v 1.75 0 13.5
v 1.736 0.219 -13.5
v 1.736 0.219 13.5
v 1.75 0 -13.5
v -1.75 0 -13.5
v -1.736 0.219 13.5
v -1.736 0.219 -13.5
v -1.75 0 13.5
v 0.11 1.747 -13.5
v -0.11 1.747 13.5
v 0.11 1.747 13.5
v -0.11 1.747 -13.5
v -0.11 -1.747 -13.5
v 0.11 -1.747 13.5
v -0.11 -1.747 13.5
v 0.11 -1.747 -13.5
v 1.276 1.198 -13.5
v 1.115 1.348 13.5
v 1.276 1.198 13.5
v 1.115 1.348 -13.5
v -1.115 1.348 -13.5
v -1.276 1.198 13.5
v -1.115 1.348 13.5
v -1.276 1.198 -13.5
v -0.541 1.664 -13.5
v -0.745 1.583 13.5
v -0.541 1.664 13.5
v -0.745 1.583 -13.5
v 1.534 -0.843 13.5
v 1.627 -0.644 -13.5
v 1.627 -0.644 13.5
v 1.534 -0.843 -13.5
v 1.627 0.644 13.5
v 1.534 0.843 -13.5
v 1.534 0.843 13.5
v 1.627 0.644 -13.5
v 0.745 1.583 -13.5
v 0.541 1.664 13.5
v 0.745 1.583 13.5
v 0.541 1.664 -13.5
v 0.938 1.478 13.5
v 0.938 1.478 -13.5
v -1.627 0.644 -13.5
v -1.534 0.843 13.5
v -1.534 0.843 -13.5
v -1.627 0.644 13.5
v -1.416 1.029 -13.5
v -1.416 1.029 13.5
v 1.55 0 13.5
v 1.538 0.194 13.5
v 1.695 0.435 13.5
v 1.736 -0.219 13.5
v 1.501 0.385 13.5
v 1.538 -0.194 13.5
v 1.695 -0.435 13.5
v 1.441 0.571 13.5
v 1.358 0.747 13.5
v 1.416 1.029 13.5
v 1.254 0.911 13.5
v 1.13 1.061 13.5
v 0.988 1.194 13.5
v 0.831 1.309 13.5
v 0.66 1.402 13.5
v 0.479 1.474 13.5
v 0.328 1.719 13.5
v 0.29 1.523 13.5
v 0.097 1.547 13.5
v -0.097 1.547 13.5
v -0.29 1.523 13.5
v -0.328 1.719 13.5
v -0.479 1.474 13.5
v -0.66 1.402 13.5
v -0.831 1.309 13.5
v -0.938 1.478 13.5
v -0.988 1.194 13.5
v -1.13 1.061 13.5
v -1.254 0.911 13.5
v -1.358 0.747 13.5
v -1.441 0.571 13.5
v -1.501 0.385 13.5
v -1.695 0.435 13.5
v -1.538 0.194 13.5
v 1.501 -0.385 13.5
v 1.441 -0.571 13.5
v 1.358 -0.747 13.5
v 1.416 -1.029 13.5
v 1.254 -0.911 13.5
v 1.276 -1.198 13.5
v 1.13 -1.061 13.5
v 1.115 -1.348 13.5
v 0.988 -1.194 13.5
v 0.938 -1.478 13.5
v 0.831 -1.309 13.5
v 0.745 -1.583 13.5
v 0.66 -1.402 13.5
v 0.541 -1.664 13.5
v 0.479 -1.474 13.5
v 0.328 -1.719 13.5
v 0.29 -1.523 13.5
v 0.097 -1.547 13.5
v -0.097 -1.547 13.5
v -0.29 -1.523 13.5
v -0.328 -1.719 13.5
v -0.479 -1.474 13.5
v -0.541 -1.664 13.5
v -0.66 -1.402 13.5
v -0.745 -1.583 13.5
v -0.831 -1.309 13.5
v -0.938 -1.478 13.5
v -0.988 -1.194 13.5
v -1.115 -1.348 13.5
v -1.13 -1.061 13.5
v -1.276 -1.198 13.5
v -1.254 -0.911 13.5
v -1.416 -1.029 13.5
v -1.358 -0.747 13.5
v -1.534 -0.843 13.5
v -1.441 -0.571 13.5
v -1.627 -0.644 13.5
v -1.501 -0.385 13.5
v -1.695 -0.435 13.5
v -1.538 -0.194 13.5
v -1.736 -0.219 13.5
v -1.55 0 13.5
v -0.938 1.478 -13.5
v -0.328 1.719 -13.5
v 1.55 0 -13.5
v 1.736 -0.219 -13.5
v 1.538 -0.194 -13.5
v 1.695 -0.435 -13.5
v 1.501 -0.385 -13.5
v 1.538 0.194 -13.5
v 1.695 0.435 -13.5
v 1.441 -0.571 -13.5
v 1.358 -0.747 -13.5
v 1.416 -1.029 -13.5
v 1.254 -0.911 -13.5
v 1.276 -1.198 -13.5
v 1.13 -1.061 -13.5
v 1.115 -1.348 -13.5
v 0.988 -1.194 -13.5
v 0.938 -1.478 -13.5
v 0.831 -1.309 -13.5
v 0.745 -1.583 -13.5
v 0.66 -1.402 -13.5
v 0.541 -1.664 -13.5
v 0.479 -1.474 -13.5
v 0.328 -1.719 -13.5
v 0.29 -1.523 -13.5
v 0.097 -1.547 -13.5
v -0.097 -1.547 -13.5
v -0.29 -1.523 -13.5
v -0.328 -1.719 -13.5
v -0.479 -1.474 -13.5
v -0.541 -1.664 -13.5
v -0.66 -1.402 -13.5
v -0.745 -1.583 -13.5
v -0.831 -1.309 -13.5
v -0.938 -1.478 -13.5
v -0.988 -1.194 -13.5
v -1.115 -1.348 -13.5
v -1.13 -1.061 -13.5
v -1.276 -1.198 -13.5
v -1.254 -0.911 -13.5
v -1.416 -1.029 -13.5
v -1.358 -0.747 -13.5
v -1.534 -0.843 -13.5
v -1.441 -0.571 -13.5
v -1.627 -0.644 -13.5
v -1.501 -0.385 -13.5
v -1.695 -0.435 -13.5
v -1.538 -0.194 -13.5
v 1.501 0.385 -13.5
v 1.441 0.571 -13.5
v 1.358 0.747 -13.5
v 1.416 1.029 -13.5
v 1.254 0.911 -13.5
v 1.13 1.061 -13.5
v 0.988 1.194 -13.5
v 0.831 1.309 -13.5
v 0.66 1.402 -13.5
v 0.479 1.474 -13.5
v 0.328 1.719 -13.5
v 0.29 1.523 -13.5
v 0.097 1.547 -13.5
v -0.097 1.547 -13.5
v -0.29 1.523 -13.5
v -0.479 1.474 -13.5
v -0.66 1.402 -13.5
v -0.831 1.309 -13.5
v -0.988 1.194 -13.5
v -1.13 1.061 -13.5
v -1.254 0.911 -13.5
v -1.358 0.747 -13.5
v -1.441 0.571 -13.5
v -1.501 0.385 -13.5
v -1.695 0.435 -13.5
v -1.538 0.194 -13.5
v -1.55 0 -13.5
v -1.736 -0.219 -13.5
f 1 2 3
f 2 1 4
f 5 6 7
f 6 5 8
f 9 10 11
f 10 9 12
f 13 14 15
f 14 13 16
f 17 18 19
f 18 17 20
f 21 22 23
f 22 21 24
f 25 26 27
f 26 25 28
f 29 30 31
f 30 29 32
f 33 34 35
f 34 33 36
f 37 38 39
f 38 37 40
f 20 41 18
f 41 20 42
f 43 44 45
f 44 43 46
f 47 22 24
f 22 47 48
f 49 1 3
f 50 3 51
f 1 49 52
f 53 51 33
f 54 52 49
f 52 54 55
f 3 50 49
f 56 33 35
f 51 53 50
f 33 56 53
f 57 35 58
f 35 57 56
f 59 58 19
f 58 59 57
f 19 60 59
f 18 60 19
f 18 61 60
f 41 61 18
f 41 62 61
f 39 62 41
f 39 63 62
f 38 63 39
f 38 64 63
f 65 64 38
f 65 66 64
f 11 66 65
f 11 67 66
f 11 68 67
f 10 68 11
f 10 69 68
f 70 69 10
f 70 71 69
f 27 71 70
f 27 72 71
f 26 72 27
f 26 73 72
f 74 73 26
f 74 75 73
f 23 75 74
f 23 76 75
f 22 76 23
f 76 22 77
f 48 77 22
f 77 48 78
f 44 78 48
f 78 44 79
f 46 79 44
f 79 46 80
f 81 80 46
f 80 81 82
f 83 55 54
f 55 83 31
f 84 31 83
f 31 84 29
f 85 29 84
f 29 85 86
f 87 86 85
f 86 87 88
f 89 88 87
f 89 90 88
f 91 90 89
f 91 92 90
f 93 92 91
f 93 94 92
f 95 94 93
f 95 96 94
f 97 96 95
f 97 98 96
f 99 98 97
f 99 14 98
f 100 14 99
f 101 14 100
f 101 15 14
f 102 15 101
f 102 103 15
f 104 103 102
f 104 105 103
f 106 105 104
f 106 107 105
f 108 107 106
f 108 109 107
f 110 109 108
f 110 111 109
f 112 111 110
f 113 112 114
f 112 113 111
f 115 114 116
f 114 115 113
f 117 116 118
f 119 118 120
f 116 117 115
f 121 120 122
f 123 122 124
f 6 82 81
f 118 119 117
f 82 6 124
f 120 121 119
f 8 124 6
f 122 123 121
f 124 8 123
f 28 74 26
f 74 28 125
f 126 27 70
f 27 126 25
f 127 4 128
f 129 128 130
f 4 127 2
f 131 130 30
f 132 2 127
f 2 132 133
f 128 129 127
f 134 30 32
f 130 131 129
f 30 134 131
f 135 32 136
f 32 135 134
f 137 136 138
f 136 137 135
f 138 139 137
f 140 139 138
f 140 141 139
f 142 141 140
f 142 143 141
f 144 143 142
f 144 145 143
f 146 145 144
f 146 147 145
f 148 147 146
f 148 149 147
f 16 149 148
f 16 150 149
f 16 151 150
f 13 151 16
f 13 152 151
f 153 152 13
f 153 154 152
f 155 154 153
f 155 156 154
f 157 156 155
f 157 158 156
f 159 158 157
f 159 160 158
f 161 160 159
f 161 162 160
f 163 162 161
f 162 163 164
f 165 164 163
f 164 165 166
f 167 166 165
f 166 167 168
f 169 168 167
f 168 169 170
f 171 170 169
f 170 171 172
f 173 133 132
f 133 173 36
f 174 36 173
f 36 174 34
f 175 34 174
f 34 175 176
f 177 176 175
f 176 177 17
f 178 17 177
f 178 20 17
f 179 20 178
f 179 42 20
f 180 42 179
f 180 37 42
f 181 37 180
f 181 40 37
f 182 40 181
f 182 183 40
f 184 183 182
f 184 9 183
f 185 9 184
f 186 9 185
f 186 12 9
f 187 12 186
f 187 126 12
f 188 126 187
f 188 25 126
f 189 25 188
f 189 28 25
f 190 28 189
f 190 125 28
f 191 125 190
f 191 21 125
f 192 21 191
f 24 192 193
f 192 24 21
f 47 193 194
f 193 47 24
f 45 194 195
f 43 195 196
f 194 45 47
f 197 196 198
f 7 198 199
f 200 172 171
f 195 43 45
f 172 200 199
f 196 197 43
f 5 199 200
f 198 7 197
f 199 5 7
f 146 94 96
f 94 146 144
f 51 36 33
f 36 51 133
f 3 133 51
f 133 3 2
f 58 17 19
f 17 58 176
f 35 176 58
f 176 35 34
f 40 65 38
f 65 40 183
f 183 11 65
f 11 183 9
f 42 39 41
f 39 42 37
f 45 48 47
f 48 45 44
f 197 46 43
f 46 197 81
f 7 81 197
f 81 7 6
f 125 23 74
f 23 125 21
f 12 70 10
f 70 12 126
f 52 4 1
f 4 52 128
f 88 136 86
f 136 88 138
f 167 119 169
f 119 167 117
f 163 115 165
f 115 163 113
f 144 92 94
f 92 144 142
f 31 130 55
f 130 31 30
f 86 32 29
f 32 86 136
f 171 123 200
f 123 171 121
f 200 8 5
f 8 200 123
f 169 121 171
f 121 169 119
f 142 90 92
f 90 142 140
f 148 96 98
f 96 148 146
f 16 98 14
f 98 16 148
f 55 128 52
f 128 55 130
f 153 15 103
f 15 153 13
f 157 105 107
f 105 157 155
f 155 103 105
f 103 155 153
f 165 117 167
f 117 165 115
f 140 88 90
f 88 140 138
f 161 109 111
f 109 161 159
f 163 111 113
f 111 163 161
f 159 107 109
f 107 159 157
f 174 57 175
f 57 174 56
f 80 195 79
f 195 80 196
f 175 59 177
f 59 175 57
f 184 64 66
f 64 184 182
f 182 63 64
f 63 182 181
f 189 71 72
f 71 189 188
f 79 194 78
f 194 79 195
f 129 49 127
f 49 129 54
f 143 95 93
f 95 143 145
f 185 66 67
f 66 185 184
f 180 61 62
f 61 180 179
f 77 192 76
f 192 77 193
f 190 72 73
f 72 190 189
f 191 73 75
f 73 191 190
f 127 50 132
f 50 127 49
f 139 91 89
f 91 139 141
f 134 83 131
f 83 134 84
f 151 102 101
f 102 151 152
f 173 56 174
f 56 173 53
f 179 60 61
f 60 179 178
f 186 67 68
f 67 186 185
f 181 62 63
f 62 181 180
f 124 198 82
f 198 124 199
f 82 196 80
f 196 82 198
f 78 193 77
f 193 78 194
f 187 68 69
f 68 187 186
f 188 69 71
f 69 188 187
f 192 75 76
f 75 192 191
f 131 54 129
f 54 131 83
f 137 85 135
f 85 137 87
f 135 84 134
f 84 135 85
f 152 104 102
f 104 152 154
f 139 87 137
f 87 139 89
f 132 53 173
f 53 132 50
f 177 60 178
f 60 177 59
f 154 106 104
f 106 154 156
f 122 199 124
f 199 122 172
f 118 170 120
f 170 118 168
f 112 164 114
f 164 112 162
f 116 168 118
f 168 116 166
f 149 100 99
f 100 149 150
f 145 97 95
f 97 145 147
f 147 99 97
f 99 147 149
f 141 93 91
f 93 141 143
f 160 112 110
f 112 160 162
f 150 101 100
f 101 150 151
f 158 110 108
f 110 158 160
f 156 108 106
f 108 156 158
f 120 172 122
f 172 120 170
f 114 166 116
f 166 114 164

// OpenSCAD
$fn = 50;


difference() {
	union() {
		translate(v = [0, 0, -13.5000000000]) {
			cylinder(h = 27, r = 1.7500000000);
		}
	}
	union() {
		translate(v = [0, 0, -100.0000000000]) {
			cylinder(h = 200, r = 1.5500000000);
		}
	}
}
